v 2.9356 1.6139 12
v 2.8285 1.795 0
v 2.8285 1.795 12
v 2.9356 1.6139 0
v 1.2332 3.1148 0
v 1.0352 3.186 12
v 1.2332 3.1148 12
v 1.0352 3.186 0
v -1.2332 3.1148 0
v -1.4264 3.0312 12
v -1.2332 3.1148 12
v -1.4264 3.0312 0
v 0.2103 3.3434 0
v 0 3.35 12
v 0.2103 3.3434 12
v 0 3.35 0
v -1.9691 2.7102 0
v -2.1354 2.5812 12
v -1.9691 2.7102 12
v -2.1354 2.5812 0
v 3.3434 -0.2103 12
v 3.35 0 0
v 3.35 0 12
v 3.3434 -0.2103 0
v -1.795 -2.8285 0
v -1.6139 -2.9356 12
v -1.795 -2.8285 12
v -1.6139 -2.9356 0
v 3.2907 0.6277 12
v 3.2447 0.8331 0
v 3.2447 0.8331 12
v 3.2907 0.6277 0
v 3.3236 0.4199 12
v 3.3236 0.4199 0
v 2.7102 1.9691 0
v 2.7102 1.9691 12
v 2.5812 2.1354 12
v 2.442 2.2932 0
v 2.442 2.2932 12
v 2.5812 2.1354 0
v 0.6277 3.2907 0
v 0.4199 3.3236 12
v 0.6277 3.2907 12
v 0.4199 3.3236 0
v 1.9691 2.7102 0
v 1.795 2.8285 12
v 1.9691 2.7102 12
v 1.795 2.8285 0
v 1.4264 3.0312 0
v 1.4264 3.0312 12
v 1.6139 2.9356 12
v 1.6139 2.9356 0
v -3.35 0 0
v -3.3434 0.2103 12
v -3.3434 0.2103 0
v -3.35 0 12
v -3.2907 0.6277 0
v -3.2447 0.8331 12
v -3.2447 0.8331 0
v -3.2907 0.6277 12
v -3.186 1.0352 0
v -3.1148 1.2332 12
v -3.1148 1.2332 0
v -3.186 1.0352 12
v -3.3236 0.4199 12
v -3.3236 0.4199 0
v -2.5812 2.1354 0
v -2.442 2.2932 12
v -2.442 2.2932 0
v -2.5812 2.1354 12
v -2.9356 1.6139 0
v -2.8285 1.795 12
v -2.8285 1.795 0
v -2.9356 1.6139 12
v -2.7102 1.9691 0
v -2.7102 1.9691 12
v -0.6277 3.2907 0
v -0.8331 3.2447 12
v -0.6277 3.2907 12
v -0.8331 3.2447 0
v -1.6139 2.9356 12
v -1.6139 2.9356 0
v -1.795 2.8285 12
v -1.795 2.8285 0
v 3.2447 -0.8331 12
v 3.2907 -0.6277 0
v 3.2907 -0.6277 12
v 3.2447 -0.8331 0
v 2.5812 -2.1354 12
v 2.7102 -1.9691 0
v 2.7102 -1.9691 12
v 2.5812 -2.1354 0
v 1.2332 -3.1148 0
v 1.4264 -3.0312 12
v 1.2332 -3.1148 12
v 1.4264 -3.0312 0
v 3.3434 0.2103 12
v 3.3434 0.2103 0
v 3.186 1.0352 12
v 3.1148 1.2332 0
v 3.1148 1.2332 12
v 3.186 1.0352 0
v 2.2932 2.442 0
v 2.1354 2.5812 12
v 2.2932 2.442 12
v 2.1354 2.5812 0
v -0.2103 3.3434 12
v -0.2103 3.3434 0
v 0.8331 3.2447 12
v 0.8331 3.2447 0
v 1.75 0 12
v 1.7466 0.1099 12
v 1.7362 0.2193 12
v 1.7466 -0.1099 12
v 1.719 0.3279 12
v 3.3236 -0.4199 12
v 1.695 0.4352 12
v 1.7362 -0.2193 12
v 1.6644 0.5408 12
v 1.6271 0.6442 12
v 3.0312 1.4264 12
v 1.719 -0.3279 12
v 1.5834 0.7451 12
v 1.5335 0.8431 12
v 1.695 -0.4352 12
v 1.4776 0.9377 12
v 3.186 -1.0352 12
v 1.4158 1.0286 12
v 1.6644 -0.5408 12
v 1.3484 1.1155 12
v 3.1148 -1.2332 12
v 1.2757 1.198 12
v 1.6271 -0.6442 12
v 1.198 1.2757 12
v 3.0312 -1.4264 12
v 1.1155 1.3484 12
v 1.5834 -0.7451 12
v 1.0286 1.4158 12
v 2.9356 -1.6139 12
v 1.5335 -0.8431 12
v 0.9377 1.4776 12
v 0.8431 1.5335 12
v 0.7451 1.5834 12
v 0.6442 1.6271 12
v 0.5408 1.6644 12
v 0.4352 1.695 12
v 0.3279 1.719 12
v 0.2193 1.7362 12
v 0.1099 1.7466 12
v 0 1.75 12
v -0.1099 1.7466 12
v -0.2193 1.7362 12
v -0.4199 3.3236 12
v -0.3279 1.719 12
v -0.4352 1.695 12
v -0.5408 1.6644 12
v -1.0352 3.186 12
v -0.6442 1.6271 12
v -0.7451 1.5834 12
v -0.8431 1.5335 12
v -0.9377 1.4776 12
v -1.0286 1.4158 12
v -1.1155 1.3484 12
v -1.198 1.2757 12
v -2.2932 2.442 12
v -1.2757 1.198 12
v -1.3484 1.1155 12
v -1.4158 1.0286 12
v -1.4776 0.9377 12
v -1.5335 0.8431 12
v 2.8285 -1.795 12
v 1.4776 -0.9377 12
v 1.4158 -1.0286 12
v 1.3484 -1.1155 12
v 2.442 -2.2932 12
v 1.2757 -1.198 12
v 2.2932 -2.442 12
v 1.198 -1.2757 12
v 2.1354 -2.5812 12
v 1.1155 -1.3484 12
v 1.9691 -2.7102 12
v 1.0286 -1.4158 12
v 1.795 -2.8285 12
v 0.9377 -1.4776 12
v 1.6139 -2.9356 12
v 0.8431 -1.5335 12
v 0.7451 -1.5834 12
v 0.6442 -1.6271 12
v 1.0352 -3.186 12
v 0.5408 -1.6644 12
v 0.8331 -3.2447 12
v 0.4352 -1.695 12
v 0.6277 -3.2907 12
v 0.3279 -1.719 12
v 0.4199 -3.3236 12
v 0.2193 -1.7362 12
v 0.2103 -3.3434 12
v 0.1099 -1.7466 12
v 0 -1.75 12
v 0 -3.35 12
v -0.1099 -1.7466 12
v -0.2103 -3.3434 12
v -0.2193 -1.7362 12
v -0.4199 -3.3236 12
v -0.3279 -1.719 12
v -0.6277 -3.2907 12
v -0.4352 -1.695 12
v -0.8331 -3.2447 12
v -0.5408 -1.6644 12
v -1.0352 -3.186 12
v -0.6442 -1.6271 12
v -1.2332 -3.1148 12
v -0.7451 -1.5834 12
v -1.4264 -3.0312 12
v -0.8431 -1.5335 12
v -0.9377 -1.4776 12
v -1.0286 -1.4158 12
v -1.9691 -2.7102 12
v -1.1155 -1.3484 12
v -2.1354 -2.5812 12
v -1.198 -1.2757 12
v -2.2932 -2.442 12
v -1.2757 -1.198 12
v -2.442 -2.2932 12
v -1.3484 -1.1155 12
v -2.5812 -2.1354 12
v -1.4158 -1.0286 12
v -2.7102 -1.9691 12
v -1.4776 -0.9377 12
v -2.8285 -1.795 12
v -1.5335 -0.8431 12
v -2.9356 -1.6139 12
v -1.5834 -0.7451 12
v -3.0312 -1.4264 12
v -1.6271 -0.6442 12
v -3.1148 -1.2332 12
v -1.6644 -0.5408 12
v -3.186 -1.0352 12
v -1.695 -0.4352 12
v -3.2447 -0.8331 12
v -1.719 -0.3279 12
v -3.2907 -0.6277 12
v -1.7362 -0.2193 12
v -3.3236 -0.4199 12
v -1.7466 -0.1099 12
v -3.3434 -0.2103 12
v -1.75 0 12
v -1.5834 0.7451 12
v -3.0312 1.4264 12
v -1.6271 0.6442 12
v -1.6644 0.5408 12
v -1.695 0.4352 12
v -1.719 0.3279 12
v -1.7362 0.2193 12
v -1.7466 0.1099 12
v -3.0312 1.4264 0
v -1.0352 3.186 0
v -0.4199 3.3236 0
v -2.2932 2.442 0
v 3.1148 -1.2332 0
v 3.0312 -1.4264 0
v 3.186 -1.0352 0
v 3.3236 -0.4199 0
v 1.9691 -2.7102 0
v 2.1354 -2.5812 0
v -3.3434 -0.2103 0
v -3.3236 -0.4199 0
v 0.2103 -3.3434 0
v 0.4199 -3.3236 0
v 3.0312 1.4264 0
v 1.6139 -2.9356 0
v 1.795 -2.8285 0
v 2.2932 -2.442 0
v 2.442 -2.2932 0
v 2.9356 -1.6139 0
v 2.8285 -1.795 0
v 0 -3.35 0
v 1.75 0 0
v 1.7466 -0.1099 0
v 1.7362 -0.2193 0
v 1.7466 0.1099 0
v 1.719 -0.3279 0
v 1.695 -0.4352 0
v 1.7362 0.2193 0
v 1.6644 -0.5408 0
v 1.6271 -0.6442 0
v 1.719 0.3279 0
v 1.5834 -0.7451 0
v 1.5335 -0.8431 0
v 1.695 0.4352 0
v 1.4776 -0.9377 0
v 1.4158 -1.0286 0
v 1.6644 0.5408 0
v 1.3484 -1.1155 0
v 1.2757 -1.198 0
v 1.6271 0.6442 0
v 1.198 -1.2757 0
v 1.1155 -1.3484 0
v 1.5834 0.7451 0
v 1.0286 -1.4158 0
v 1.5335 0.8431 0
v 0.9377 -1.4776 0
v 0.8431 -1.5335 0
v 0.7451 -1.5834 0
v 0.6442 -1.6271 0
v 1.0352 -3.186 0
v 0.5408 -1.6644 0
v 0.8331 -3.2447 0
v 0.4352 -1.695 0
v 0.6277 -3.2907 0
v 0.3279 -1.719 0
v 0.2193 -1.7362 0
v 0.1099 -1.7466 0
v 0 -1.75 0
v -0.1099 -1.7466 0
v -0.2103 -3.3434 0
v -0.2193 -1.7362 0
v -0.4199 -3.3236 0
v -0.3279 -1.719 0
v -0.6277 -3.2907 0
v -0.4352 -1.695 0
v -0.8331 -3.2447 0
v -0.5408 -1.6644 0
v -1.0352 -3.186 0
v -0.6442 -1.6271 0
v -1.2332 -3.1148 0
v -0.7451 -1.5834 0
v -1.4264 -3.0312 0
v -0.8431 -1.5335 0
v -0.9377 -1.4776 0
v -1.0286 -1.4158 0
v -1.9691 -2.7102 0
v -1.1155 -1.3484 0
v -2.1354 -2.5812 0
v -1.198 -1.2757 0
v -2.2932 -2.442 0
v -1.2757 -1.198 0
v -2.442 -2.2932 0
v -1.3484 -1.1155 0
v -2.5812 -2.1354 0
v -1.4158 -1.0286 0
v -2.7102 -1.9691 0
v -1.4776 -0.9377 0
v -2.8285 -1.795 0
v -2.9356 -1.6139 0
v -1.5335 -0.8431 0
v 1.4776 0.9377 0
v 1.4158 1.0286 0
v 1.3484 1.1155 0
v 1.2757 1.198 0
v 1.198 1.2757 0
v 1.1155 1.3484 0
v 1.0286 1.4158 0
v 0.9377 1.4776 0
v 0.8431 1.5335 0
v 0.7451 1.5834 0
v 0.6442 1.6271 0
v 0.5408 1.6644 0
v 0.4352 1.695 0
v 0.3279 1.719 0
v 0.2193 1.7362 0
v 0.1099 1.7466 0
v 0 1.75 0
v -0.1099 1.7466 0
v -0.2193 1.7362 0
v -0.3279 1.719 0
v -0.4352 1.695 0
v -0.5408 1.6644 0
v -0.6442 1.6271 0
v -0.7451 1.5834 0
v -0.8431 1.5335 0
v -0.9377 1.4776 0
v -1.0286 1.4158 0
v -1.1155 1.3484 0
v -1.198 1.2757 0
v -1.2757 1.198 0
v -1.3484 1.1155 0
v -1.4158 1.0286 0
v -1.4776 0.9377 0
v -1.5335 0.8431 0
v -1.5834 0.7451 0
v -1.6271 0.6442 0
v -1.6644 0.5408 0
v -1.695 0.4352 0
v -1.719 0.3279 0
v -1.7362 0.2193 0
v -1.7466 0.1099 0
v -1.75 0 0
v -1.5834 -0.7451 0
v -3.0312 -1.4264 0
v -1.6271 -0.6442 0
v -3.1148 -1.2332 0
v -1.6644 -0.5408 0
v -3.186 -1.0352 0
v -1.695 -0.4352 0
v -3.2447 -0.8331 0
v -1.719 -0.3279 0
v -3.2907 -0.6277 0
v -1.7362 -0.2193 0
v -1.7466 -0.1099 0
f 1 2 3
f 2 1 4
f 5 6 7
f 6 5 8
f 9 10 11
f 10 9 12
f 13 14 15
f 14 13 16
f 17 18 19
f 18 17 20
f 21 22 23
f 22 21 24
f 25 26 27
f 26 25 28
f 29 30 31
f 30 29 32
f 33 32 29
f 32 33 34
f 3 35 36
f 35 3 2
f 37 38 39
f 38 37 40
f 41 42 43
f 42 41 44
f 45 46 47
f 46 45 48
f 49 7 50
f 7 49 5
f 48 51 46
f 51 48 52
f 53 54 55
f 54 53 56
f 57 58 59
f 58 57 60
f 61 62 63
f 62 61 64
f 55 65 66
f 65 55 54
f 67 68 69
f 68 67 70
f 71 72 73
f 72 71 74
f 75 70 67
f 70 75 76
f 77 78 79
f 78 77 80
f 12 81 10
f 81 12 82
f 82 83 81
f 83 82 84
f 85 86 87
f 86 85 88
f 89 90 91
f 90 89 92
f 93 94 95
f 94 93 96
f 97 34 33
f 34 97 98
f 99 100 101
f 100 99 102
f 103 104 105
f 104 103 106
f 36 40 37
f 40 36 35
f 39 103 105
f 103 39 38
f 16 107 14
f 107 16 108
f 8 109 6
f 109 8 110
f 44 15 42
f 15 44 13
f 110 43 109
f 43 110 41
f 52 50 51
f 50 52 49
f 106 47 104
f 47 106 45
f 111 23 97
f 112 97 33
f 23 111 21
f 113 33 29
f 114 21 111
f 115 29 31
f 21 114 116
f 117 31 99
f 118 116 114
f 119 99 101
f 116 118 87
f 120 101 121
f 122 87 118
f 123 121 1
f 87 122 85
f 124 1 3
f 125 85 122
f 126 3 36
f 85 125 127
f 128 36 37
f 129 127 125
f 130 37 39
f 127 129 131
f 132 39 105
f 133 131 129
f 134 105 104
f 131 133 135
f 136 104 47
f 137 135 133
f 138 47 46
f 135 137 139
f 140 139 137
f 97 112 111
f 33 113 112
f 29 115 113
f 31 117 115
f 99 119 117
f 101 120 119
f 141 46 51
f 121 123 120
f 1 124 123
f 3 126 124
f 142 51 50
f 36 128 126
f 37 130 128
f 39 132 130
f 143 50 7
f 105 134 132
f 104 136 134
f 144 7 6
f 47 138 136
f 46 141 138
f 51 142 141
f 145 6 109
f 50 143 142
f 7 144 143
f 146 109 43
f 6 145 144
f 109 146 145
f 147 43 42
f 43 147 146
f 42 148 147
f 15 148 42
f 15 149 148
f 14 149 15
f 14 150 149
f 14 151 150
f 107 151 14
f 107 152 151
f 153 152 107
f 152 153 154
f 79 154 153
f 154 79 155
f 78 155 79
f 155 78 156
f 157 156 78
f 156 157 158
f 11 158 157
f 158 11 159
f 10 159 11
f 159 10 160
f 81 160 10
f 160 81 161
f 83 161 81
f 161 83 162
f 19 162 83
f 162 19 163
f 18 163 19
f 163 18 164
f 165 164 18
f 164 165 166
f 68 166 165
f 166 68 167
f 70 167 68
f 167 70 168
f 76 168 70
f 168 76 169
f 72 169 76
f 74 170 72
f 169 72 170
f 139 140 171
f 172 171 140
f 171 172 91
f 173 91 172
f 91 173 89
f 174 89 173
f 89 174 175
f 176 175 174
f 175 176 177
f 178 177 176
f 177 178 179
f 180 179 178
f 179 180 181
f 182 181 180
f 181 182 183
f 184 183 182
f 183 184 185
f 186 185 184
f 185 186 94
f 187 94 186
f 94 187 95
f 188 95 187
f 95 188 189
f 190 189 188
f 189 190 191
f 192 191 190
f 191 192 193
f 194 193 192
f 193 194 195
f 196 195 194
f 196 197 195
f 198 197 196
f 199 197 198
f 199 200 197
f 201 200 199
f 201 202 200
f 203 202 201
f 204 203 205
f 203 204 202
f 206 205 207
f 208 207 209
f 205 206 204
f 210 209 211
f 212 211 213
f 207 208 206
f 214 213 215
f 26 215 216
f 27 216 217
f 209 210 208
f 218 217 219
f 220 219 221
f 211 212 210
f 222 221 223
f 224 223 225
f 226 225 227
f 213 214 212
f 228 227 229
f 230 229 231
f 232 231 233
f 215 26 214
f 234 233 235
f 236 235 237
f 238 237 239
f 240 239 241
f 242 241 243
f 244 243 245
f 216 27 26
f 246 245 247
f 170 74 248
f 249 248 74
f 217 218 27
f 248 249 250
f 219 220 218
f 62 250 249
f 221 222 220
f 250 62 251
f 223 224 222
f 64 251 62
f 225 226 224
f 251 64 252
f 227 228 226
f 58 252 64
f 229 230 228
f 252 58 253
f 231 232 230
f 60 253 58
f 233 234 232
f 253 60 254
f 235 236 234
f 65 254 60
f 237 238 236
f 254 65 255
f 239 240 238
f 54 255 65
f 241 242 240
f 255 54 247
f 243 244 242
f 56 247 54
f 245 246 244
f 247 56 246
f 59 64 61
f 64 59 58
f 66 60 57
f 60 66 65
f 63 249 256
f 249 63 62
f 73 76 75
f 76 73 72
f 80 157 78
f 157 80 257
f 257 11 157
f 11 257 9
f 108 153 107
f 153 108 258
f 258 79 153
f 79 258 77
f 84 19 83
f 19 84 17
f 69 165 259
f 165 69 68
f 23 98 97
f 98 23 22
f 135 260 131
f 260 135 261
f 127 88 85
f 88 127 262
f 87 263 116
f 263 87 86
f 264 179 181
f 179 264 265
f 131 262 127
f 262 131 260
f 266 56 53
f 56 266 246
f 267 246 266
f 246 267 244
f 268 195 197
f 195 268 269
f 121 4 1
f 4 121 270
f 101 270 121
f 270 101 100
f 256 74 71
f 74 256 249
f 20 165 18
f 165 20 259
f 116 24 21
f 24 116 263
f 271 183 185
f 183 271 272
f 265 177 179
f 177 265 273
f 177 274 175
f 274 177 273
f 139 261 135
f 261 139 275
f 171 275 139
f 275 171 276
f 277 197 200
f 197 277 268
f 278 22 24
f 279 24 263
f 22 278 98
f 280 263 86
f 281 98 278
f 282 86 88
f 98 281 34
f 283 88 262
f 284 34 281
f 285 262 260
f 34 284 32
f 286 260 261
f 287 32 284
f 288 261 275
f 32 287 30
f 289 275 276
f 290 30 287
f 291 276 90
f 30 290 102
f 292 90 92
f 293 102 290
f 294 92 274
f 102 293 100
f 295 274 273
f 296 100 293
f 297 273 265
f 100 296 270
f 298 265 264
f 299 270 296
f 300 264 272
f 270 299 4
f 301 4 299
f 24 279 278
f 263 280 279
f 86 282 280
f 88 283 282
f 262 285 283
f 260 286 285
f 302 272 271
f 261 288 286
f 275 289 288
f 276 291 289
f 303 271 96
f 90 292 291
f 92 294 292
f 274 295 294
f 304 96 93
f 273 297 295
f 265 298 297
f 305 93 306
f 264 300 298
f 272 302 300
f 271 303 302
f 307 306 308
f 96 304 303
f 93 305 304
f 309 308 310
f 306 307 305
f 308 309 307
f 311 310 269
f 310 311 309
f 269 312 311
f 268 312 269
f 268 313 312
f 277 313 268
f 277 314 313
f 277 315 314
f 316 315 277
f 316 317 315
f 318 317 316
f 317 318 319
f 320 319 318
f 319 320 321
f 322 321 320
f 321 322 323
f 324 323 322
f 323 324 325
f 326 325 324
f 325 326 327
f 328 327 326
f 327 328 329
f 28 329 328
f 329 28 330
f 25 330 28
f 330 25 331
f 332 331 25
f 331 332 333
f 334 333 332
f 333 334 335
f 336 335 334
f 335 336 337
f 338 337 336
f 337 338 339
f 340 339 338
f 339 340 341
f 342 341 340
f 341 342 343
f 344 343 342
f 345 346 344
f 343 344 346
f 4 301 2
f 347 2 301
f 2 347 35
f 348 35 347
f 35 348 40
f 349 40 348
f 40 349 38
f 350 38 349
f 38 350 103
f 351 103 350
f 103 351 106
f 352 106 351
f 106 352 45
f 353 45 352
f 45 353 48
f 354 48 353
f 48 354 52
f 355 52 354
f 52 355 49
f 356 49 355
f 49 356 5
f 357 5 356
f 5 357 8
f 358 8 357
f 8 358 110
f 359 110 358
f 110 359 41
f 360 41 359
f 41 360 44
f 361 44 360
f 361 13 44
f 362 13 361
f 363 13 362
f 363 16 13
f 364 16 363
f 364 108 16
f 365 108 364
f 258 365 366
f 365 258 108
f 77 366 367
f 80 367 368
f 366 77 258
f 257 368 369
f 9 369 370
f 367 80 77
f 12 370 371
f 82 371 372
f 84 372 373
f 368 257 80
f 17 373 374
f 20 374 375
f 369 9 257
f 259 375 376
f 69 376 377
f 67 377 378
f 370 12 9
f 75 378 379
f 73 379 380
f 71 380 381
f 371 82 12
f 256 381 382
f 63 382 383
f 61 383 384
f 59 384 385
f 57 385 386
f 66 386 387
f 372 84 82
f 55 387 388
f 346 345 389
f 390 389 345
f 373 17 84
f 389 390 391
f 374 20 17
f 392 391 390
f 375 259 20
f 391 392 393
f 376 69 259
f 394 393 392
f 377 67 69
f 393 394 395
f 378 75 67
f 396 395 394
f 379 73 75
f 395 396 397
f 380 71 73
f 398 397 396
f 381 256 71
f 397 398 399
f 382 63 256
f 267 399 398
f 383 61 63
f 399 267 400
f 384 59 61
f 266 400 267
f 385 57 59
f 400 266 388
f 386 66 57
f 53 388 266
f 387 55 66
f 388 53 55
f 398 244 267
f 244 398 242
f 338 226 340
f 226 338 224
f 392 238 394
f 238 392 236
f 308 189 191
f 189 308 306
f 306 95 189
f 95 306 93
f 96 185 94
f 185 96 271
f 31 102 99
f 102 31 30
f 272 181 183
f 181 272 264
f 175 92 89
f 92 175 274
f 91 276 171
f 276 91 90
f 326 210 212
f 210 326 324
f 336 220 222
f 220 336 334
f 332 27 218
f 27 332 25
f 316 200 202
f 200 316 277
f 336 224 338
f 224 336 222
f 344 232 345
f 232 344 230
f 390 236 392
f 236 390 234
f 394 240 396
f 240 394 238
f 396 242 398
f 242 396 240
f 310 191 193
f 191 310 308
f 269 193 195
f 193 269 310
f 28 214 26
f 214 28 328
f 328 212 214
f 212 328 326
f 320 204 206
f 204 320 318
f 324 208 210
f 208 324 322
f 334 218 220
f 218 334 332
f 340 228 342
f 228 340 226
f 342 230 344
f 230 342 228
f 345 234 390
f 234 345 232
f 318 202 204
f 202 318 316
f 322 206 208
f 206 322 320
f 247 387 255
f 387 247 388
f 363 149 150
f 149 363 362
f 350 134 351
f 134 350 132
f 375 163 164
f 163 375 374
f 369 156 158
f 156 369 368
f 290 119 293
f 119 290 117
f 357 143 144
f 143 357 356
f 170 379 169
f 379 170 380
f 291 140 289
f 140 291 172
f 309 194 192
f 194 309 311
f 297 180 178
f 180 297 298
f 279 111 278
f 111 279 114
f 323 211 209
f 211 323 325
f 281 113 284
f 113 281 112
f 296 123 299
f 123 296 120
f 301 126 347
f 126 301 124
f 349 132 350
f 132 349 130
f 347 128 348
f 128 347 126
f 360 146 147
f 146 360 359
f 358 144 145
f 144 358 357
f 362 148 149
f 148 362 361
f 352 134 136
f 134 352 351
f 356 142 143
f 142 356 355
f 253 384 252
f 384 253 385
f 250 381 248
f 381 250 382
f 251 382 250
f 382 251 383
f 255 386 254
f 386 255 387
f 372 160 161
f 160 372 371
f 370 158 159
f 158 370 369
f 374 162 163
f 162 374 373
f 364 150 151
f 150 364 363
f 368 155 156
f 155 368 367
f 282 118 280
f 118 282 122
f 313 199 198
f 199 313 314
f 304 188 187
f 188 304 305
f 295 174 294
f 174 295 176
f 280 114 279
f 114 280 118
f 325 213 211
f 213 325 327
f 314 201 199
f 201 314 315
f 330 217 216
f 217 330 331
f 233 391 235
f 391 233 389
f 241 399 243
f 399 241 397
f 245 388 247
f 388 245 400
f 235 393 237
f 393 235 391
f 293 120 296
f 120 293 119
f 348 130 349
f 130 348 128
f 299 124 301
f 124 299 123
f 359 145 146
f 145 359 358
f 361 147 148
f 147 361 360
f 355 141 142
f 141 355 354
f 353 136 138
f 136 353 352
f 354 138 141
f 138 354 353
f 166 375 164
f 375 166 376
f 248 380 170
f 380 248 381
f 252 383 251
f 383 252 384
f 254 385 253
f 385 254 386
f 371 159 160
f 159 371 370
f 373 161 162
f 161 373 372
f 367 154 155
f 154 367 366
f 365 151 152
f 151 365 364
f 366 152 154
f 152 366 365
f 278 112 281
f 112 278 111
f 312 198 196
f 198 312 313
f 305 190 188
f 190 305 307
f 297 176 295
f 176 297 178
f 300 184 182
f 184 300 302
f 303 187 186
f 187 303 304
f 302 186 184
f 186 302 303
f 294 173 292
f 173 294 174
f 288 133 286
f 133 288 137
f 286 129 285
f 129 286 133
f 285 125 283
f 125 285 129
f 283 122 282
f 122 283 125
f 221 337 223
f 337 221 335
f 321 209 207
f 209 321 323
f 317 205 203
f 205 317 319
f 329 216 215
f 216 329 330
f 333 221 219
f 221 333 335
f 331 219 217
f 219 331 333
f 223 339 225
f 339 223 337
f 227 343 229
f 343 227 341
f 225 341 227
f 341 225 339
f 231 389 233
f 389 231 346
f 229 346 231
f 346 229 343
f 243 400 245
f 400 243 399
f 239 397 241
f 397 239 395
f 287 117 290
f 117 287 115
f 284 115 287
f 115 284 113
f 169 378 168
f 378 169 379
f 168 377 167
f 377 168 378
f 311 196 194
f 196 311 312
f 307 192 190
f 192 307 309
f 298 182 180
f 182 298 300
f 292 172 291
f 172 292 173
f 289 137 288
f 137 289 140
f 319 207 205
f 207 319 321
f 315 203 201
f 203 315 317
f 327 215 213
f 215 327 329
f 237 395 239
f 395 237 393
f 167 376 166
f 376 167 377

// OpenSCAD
height = 12;
diameter = 6.7;
hole_diameter = 3.5;

$fn=100;

difference() {
    cylinder(d=diameter, h=height);
    cylinder(d=hole_diameter, h=height);
}
